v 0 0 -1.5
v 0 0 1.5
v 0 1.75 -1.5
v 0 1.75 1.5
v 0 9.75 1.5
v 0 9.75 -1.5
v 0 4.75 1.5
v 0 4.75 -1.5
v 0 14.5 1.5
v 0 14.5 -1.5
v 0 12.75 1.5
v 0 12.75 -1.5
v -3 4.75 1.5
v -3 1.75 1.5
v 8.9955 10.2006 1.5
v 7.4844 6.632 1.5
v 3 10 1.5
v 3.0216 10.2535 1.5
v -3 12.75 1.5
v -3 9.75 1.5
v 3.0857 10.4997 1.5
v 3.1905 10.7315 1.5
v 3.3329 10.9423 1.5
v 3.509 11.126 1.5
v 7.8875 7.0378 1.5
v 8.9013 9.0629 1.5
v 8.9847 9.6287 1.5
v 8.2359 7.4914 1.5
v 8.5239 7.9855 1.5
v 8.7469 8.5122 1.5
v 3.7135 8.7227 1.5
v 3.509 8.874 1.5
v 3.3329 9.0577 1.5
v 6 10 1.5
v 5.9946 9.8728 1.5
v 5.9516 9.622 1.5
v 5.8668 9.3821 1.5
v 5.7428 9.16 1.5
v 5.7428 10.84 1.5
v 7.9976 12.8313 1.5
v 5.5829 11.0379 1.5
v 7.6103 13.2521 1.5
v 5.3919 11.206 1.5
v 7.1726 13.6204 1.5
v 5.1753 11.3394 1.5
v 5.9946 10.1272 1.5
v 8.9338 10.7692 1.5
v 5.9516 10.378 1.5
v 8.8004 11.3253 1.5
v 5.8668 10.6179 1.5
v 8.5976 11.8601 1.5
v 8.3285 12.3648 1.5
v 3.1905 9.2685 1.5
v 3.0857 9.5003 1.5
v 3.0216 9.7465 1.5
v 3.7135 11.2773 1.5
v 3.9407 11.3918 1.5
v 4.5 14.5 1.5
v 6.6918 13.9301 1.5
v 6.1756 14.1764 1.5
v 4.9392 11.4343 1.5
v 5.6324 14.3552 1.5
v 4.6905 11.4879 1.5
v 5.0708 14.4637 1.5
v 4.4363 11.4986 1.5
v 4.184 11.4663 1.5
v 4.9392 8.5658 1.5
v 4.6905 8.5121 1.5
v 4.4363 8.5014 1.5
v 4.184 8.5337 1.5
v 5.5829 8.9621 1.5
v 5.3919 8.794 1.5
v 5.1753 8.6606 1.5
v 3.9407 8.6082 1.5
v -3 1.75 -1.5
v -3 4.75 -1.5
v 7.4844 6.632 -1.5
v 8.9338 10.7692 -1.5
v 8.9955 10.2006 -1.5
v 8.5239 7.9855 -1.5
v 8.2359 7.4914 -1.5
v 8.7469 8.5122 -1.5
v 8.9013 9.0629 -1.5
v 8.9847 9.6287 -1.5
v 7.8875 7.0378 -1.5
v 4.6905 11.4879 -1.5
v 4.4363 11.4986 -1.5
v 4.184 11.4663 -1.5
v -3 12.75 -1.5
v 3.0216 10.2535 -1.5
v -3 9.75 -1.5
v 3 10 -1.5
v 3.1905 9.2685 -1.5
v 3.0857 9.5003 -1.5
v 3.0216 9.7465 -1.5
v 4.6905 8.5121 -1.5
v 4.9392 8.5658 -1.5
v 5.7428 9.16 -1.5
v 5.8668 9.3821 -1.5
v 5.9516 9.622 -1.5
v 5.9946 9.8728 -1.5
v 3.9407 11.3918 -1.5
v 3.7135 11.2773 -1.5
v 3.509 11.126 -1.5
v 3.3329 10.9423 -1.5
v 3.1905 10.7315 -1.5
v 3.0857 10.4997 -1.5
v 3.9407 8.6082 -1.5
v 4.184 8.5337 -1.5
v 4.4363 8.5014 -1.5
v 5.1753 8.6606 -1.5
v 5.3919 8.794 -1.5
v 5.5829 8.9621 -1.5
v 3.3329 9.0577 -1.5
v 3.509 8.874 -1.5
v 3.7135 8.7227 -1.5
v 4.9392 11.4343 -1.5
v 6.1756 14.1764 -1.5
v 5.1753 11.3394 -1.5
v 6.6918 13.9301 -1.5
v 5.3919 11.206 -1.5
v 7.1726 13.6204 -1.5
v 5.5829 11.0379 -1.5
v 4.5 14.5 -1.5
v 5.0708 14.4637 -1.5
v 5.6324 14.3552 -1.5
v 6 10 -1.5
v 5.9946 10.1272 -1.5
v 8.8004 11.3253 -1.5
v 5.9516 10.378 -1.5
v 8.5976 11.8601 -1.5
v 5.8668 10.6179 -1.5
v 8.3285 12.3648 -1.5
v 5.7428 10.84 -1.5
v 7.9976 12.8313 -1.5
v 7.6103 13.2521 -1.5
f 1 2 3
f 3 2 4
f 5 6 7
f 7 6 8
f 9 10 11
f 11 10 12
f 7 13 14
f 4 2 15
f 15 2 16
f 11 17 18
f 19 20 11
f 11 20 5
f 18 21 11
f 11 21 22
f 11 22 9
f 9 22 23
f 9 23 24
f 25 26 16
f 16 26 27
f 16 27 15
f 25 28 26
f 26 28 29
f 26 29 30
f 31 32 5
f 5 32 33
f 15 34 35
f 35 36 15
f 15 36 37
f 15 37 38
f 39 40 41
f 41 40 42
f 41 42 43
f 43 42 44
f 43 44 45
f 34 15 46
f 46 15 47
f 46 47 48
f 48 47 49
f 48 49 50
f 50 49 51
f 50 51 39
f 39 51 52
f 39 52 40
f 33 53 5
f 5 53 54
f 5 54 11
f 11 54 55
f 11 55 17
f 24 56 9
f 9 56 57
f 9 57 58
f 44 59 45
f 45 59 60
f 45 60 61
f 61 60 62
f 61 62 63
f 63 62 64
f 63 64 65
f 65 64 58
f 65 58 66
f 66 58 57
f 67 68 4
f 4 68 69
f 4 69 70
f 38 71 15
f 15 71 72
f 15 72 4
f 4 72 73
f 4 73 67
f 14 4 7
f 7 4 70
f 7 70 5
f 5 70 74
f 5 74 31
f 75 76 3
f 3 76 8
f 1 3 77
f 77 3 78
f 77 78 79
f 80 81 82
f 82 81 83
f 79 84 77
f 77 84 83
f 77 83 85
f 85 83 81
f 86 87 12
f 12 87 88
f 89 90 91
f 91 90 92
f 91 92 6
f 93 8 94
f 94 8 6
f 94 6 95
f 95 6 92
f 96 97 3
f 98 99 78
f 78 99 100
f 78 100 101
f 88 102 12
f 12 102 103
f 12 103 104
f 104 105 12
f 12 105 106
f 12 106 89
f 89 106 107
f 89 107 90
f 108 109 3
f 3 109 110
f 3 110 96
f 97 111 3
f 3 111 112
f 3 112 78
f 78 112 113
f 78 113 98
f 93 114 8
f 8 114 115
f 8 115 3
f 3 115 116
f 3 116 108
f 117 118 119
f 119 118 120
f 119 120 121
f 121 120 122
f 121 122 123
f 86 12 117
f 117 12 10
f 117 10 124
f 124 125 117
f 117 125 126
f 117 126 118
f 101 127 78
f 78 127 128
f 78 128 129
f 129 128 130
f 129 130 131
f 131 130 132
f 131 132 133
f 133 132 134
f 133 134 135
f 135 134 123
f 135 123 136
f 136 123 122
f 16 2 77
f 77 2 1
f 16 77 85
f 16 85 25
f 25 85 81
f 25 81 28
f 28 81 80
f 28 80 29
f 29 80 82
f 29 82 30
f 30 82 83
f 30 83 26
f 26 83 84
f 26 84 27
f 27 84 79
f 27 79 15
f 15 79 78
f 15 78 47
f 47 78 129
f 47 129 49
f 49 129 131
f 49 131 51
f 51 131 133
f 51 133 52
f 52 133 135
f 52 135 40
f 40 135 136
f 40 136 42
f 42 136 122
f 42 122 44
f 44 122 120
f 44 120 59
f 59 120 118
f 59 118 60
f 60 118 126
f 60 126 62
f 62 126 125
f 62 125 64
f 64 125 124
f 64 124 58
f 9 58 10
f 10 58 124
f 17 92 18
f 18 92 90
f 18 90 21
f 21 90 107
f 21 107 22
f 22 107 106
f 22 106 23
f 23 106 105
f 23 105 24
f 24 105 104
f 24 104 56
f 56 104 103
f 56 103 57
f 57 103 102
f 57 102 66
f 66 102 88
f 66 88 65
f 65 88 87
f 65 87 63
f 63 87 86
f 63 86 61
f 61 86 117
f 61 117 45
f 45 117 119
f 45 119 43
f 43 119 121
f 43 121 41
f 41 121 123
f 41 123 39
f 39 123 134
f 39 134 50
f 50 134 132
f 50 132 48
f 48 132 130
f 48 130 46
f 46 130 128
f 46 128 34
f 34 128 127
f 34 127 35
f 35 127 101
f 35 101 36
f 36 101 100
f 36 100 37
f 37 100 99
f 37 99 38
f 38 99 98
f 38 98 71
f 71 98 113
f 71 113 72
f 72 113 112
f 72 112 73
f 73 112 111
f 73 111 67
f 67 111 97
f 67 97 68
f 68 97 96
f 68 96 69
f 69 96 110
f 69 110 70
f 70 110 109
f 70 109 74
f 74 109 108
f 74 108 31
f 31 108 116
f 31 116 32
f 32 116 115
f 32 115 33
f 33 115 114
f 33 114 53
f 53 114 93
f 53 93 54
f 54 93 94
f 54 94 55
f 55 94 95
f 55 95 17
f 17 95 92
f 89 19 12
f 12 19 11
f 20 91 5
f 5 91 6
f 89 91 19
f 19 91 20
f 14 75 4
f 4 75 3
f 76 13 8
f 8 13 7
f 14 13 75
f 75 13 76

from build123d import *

# Parameters (mm, degrees)
SKETCH1_R           = 1.5
BOSS_EXTRUDE1_DEPTH = 1.5
SKETCH2_W           = 3
SKETCH2_H           = 3
BOSS_EXTRUDE2_DEPTH = 3


with BuildPart() as part:
    # Sketch1 → Boss-Extrude1 (new body, symmetric)
    with BuildSketch(Plane.XY):
        with BuildLine():
            Line((0, 0), (0, 10))
            Line((0, 10), (0, 14.5))
            Line((0, 14.5), (4.5, 14.5))
            ThreePointArc((4.5, 14.5), (8.707488868, 11.595944054), (7.484407484, 6.632016632))
            Line((7.484407484, 6.632016632), (0, 0))
        make_face()
        with Locations((4.5, 10)):
            Circle(SKETCH1_R, mode=Mode.SUBTRACT)
    extrude(amount=BOSS_EXTRUDE1_DEPTH, both=True)

    # Sketch2 → Boss-Extrude2 (add)
    with BuildSketch(Plane.ZY):
        with Locations((0, 11.25)):
            Rectangle(SKETCH2_W, SKETCH2_H)
        with Locations((0, 3.25)):
            Rectangle(SKETCH2_W, SKETCH2_H)
    extrude(amount=BOSS_EXTRUDE2_DEPTH)


solid = part.part
